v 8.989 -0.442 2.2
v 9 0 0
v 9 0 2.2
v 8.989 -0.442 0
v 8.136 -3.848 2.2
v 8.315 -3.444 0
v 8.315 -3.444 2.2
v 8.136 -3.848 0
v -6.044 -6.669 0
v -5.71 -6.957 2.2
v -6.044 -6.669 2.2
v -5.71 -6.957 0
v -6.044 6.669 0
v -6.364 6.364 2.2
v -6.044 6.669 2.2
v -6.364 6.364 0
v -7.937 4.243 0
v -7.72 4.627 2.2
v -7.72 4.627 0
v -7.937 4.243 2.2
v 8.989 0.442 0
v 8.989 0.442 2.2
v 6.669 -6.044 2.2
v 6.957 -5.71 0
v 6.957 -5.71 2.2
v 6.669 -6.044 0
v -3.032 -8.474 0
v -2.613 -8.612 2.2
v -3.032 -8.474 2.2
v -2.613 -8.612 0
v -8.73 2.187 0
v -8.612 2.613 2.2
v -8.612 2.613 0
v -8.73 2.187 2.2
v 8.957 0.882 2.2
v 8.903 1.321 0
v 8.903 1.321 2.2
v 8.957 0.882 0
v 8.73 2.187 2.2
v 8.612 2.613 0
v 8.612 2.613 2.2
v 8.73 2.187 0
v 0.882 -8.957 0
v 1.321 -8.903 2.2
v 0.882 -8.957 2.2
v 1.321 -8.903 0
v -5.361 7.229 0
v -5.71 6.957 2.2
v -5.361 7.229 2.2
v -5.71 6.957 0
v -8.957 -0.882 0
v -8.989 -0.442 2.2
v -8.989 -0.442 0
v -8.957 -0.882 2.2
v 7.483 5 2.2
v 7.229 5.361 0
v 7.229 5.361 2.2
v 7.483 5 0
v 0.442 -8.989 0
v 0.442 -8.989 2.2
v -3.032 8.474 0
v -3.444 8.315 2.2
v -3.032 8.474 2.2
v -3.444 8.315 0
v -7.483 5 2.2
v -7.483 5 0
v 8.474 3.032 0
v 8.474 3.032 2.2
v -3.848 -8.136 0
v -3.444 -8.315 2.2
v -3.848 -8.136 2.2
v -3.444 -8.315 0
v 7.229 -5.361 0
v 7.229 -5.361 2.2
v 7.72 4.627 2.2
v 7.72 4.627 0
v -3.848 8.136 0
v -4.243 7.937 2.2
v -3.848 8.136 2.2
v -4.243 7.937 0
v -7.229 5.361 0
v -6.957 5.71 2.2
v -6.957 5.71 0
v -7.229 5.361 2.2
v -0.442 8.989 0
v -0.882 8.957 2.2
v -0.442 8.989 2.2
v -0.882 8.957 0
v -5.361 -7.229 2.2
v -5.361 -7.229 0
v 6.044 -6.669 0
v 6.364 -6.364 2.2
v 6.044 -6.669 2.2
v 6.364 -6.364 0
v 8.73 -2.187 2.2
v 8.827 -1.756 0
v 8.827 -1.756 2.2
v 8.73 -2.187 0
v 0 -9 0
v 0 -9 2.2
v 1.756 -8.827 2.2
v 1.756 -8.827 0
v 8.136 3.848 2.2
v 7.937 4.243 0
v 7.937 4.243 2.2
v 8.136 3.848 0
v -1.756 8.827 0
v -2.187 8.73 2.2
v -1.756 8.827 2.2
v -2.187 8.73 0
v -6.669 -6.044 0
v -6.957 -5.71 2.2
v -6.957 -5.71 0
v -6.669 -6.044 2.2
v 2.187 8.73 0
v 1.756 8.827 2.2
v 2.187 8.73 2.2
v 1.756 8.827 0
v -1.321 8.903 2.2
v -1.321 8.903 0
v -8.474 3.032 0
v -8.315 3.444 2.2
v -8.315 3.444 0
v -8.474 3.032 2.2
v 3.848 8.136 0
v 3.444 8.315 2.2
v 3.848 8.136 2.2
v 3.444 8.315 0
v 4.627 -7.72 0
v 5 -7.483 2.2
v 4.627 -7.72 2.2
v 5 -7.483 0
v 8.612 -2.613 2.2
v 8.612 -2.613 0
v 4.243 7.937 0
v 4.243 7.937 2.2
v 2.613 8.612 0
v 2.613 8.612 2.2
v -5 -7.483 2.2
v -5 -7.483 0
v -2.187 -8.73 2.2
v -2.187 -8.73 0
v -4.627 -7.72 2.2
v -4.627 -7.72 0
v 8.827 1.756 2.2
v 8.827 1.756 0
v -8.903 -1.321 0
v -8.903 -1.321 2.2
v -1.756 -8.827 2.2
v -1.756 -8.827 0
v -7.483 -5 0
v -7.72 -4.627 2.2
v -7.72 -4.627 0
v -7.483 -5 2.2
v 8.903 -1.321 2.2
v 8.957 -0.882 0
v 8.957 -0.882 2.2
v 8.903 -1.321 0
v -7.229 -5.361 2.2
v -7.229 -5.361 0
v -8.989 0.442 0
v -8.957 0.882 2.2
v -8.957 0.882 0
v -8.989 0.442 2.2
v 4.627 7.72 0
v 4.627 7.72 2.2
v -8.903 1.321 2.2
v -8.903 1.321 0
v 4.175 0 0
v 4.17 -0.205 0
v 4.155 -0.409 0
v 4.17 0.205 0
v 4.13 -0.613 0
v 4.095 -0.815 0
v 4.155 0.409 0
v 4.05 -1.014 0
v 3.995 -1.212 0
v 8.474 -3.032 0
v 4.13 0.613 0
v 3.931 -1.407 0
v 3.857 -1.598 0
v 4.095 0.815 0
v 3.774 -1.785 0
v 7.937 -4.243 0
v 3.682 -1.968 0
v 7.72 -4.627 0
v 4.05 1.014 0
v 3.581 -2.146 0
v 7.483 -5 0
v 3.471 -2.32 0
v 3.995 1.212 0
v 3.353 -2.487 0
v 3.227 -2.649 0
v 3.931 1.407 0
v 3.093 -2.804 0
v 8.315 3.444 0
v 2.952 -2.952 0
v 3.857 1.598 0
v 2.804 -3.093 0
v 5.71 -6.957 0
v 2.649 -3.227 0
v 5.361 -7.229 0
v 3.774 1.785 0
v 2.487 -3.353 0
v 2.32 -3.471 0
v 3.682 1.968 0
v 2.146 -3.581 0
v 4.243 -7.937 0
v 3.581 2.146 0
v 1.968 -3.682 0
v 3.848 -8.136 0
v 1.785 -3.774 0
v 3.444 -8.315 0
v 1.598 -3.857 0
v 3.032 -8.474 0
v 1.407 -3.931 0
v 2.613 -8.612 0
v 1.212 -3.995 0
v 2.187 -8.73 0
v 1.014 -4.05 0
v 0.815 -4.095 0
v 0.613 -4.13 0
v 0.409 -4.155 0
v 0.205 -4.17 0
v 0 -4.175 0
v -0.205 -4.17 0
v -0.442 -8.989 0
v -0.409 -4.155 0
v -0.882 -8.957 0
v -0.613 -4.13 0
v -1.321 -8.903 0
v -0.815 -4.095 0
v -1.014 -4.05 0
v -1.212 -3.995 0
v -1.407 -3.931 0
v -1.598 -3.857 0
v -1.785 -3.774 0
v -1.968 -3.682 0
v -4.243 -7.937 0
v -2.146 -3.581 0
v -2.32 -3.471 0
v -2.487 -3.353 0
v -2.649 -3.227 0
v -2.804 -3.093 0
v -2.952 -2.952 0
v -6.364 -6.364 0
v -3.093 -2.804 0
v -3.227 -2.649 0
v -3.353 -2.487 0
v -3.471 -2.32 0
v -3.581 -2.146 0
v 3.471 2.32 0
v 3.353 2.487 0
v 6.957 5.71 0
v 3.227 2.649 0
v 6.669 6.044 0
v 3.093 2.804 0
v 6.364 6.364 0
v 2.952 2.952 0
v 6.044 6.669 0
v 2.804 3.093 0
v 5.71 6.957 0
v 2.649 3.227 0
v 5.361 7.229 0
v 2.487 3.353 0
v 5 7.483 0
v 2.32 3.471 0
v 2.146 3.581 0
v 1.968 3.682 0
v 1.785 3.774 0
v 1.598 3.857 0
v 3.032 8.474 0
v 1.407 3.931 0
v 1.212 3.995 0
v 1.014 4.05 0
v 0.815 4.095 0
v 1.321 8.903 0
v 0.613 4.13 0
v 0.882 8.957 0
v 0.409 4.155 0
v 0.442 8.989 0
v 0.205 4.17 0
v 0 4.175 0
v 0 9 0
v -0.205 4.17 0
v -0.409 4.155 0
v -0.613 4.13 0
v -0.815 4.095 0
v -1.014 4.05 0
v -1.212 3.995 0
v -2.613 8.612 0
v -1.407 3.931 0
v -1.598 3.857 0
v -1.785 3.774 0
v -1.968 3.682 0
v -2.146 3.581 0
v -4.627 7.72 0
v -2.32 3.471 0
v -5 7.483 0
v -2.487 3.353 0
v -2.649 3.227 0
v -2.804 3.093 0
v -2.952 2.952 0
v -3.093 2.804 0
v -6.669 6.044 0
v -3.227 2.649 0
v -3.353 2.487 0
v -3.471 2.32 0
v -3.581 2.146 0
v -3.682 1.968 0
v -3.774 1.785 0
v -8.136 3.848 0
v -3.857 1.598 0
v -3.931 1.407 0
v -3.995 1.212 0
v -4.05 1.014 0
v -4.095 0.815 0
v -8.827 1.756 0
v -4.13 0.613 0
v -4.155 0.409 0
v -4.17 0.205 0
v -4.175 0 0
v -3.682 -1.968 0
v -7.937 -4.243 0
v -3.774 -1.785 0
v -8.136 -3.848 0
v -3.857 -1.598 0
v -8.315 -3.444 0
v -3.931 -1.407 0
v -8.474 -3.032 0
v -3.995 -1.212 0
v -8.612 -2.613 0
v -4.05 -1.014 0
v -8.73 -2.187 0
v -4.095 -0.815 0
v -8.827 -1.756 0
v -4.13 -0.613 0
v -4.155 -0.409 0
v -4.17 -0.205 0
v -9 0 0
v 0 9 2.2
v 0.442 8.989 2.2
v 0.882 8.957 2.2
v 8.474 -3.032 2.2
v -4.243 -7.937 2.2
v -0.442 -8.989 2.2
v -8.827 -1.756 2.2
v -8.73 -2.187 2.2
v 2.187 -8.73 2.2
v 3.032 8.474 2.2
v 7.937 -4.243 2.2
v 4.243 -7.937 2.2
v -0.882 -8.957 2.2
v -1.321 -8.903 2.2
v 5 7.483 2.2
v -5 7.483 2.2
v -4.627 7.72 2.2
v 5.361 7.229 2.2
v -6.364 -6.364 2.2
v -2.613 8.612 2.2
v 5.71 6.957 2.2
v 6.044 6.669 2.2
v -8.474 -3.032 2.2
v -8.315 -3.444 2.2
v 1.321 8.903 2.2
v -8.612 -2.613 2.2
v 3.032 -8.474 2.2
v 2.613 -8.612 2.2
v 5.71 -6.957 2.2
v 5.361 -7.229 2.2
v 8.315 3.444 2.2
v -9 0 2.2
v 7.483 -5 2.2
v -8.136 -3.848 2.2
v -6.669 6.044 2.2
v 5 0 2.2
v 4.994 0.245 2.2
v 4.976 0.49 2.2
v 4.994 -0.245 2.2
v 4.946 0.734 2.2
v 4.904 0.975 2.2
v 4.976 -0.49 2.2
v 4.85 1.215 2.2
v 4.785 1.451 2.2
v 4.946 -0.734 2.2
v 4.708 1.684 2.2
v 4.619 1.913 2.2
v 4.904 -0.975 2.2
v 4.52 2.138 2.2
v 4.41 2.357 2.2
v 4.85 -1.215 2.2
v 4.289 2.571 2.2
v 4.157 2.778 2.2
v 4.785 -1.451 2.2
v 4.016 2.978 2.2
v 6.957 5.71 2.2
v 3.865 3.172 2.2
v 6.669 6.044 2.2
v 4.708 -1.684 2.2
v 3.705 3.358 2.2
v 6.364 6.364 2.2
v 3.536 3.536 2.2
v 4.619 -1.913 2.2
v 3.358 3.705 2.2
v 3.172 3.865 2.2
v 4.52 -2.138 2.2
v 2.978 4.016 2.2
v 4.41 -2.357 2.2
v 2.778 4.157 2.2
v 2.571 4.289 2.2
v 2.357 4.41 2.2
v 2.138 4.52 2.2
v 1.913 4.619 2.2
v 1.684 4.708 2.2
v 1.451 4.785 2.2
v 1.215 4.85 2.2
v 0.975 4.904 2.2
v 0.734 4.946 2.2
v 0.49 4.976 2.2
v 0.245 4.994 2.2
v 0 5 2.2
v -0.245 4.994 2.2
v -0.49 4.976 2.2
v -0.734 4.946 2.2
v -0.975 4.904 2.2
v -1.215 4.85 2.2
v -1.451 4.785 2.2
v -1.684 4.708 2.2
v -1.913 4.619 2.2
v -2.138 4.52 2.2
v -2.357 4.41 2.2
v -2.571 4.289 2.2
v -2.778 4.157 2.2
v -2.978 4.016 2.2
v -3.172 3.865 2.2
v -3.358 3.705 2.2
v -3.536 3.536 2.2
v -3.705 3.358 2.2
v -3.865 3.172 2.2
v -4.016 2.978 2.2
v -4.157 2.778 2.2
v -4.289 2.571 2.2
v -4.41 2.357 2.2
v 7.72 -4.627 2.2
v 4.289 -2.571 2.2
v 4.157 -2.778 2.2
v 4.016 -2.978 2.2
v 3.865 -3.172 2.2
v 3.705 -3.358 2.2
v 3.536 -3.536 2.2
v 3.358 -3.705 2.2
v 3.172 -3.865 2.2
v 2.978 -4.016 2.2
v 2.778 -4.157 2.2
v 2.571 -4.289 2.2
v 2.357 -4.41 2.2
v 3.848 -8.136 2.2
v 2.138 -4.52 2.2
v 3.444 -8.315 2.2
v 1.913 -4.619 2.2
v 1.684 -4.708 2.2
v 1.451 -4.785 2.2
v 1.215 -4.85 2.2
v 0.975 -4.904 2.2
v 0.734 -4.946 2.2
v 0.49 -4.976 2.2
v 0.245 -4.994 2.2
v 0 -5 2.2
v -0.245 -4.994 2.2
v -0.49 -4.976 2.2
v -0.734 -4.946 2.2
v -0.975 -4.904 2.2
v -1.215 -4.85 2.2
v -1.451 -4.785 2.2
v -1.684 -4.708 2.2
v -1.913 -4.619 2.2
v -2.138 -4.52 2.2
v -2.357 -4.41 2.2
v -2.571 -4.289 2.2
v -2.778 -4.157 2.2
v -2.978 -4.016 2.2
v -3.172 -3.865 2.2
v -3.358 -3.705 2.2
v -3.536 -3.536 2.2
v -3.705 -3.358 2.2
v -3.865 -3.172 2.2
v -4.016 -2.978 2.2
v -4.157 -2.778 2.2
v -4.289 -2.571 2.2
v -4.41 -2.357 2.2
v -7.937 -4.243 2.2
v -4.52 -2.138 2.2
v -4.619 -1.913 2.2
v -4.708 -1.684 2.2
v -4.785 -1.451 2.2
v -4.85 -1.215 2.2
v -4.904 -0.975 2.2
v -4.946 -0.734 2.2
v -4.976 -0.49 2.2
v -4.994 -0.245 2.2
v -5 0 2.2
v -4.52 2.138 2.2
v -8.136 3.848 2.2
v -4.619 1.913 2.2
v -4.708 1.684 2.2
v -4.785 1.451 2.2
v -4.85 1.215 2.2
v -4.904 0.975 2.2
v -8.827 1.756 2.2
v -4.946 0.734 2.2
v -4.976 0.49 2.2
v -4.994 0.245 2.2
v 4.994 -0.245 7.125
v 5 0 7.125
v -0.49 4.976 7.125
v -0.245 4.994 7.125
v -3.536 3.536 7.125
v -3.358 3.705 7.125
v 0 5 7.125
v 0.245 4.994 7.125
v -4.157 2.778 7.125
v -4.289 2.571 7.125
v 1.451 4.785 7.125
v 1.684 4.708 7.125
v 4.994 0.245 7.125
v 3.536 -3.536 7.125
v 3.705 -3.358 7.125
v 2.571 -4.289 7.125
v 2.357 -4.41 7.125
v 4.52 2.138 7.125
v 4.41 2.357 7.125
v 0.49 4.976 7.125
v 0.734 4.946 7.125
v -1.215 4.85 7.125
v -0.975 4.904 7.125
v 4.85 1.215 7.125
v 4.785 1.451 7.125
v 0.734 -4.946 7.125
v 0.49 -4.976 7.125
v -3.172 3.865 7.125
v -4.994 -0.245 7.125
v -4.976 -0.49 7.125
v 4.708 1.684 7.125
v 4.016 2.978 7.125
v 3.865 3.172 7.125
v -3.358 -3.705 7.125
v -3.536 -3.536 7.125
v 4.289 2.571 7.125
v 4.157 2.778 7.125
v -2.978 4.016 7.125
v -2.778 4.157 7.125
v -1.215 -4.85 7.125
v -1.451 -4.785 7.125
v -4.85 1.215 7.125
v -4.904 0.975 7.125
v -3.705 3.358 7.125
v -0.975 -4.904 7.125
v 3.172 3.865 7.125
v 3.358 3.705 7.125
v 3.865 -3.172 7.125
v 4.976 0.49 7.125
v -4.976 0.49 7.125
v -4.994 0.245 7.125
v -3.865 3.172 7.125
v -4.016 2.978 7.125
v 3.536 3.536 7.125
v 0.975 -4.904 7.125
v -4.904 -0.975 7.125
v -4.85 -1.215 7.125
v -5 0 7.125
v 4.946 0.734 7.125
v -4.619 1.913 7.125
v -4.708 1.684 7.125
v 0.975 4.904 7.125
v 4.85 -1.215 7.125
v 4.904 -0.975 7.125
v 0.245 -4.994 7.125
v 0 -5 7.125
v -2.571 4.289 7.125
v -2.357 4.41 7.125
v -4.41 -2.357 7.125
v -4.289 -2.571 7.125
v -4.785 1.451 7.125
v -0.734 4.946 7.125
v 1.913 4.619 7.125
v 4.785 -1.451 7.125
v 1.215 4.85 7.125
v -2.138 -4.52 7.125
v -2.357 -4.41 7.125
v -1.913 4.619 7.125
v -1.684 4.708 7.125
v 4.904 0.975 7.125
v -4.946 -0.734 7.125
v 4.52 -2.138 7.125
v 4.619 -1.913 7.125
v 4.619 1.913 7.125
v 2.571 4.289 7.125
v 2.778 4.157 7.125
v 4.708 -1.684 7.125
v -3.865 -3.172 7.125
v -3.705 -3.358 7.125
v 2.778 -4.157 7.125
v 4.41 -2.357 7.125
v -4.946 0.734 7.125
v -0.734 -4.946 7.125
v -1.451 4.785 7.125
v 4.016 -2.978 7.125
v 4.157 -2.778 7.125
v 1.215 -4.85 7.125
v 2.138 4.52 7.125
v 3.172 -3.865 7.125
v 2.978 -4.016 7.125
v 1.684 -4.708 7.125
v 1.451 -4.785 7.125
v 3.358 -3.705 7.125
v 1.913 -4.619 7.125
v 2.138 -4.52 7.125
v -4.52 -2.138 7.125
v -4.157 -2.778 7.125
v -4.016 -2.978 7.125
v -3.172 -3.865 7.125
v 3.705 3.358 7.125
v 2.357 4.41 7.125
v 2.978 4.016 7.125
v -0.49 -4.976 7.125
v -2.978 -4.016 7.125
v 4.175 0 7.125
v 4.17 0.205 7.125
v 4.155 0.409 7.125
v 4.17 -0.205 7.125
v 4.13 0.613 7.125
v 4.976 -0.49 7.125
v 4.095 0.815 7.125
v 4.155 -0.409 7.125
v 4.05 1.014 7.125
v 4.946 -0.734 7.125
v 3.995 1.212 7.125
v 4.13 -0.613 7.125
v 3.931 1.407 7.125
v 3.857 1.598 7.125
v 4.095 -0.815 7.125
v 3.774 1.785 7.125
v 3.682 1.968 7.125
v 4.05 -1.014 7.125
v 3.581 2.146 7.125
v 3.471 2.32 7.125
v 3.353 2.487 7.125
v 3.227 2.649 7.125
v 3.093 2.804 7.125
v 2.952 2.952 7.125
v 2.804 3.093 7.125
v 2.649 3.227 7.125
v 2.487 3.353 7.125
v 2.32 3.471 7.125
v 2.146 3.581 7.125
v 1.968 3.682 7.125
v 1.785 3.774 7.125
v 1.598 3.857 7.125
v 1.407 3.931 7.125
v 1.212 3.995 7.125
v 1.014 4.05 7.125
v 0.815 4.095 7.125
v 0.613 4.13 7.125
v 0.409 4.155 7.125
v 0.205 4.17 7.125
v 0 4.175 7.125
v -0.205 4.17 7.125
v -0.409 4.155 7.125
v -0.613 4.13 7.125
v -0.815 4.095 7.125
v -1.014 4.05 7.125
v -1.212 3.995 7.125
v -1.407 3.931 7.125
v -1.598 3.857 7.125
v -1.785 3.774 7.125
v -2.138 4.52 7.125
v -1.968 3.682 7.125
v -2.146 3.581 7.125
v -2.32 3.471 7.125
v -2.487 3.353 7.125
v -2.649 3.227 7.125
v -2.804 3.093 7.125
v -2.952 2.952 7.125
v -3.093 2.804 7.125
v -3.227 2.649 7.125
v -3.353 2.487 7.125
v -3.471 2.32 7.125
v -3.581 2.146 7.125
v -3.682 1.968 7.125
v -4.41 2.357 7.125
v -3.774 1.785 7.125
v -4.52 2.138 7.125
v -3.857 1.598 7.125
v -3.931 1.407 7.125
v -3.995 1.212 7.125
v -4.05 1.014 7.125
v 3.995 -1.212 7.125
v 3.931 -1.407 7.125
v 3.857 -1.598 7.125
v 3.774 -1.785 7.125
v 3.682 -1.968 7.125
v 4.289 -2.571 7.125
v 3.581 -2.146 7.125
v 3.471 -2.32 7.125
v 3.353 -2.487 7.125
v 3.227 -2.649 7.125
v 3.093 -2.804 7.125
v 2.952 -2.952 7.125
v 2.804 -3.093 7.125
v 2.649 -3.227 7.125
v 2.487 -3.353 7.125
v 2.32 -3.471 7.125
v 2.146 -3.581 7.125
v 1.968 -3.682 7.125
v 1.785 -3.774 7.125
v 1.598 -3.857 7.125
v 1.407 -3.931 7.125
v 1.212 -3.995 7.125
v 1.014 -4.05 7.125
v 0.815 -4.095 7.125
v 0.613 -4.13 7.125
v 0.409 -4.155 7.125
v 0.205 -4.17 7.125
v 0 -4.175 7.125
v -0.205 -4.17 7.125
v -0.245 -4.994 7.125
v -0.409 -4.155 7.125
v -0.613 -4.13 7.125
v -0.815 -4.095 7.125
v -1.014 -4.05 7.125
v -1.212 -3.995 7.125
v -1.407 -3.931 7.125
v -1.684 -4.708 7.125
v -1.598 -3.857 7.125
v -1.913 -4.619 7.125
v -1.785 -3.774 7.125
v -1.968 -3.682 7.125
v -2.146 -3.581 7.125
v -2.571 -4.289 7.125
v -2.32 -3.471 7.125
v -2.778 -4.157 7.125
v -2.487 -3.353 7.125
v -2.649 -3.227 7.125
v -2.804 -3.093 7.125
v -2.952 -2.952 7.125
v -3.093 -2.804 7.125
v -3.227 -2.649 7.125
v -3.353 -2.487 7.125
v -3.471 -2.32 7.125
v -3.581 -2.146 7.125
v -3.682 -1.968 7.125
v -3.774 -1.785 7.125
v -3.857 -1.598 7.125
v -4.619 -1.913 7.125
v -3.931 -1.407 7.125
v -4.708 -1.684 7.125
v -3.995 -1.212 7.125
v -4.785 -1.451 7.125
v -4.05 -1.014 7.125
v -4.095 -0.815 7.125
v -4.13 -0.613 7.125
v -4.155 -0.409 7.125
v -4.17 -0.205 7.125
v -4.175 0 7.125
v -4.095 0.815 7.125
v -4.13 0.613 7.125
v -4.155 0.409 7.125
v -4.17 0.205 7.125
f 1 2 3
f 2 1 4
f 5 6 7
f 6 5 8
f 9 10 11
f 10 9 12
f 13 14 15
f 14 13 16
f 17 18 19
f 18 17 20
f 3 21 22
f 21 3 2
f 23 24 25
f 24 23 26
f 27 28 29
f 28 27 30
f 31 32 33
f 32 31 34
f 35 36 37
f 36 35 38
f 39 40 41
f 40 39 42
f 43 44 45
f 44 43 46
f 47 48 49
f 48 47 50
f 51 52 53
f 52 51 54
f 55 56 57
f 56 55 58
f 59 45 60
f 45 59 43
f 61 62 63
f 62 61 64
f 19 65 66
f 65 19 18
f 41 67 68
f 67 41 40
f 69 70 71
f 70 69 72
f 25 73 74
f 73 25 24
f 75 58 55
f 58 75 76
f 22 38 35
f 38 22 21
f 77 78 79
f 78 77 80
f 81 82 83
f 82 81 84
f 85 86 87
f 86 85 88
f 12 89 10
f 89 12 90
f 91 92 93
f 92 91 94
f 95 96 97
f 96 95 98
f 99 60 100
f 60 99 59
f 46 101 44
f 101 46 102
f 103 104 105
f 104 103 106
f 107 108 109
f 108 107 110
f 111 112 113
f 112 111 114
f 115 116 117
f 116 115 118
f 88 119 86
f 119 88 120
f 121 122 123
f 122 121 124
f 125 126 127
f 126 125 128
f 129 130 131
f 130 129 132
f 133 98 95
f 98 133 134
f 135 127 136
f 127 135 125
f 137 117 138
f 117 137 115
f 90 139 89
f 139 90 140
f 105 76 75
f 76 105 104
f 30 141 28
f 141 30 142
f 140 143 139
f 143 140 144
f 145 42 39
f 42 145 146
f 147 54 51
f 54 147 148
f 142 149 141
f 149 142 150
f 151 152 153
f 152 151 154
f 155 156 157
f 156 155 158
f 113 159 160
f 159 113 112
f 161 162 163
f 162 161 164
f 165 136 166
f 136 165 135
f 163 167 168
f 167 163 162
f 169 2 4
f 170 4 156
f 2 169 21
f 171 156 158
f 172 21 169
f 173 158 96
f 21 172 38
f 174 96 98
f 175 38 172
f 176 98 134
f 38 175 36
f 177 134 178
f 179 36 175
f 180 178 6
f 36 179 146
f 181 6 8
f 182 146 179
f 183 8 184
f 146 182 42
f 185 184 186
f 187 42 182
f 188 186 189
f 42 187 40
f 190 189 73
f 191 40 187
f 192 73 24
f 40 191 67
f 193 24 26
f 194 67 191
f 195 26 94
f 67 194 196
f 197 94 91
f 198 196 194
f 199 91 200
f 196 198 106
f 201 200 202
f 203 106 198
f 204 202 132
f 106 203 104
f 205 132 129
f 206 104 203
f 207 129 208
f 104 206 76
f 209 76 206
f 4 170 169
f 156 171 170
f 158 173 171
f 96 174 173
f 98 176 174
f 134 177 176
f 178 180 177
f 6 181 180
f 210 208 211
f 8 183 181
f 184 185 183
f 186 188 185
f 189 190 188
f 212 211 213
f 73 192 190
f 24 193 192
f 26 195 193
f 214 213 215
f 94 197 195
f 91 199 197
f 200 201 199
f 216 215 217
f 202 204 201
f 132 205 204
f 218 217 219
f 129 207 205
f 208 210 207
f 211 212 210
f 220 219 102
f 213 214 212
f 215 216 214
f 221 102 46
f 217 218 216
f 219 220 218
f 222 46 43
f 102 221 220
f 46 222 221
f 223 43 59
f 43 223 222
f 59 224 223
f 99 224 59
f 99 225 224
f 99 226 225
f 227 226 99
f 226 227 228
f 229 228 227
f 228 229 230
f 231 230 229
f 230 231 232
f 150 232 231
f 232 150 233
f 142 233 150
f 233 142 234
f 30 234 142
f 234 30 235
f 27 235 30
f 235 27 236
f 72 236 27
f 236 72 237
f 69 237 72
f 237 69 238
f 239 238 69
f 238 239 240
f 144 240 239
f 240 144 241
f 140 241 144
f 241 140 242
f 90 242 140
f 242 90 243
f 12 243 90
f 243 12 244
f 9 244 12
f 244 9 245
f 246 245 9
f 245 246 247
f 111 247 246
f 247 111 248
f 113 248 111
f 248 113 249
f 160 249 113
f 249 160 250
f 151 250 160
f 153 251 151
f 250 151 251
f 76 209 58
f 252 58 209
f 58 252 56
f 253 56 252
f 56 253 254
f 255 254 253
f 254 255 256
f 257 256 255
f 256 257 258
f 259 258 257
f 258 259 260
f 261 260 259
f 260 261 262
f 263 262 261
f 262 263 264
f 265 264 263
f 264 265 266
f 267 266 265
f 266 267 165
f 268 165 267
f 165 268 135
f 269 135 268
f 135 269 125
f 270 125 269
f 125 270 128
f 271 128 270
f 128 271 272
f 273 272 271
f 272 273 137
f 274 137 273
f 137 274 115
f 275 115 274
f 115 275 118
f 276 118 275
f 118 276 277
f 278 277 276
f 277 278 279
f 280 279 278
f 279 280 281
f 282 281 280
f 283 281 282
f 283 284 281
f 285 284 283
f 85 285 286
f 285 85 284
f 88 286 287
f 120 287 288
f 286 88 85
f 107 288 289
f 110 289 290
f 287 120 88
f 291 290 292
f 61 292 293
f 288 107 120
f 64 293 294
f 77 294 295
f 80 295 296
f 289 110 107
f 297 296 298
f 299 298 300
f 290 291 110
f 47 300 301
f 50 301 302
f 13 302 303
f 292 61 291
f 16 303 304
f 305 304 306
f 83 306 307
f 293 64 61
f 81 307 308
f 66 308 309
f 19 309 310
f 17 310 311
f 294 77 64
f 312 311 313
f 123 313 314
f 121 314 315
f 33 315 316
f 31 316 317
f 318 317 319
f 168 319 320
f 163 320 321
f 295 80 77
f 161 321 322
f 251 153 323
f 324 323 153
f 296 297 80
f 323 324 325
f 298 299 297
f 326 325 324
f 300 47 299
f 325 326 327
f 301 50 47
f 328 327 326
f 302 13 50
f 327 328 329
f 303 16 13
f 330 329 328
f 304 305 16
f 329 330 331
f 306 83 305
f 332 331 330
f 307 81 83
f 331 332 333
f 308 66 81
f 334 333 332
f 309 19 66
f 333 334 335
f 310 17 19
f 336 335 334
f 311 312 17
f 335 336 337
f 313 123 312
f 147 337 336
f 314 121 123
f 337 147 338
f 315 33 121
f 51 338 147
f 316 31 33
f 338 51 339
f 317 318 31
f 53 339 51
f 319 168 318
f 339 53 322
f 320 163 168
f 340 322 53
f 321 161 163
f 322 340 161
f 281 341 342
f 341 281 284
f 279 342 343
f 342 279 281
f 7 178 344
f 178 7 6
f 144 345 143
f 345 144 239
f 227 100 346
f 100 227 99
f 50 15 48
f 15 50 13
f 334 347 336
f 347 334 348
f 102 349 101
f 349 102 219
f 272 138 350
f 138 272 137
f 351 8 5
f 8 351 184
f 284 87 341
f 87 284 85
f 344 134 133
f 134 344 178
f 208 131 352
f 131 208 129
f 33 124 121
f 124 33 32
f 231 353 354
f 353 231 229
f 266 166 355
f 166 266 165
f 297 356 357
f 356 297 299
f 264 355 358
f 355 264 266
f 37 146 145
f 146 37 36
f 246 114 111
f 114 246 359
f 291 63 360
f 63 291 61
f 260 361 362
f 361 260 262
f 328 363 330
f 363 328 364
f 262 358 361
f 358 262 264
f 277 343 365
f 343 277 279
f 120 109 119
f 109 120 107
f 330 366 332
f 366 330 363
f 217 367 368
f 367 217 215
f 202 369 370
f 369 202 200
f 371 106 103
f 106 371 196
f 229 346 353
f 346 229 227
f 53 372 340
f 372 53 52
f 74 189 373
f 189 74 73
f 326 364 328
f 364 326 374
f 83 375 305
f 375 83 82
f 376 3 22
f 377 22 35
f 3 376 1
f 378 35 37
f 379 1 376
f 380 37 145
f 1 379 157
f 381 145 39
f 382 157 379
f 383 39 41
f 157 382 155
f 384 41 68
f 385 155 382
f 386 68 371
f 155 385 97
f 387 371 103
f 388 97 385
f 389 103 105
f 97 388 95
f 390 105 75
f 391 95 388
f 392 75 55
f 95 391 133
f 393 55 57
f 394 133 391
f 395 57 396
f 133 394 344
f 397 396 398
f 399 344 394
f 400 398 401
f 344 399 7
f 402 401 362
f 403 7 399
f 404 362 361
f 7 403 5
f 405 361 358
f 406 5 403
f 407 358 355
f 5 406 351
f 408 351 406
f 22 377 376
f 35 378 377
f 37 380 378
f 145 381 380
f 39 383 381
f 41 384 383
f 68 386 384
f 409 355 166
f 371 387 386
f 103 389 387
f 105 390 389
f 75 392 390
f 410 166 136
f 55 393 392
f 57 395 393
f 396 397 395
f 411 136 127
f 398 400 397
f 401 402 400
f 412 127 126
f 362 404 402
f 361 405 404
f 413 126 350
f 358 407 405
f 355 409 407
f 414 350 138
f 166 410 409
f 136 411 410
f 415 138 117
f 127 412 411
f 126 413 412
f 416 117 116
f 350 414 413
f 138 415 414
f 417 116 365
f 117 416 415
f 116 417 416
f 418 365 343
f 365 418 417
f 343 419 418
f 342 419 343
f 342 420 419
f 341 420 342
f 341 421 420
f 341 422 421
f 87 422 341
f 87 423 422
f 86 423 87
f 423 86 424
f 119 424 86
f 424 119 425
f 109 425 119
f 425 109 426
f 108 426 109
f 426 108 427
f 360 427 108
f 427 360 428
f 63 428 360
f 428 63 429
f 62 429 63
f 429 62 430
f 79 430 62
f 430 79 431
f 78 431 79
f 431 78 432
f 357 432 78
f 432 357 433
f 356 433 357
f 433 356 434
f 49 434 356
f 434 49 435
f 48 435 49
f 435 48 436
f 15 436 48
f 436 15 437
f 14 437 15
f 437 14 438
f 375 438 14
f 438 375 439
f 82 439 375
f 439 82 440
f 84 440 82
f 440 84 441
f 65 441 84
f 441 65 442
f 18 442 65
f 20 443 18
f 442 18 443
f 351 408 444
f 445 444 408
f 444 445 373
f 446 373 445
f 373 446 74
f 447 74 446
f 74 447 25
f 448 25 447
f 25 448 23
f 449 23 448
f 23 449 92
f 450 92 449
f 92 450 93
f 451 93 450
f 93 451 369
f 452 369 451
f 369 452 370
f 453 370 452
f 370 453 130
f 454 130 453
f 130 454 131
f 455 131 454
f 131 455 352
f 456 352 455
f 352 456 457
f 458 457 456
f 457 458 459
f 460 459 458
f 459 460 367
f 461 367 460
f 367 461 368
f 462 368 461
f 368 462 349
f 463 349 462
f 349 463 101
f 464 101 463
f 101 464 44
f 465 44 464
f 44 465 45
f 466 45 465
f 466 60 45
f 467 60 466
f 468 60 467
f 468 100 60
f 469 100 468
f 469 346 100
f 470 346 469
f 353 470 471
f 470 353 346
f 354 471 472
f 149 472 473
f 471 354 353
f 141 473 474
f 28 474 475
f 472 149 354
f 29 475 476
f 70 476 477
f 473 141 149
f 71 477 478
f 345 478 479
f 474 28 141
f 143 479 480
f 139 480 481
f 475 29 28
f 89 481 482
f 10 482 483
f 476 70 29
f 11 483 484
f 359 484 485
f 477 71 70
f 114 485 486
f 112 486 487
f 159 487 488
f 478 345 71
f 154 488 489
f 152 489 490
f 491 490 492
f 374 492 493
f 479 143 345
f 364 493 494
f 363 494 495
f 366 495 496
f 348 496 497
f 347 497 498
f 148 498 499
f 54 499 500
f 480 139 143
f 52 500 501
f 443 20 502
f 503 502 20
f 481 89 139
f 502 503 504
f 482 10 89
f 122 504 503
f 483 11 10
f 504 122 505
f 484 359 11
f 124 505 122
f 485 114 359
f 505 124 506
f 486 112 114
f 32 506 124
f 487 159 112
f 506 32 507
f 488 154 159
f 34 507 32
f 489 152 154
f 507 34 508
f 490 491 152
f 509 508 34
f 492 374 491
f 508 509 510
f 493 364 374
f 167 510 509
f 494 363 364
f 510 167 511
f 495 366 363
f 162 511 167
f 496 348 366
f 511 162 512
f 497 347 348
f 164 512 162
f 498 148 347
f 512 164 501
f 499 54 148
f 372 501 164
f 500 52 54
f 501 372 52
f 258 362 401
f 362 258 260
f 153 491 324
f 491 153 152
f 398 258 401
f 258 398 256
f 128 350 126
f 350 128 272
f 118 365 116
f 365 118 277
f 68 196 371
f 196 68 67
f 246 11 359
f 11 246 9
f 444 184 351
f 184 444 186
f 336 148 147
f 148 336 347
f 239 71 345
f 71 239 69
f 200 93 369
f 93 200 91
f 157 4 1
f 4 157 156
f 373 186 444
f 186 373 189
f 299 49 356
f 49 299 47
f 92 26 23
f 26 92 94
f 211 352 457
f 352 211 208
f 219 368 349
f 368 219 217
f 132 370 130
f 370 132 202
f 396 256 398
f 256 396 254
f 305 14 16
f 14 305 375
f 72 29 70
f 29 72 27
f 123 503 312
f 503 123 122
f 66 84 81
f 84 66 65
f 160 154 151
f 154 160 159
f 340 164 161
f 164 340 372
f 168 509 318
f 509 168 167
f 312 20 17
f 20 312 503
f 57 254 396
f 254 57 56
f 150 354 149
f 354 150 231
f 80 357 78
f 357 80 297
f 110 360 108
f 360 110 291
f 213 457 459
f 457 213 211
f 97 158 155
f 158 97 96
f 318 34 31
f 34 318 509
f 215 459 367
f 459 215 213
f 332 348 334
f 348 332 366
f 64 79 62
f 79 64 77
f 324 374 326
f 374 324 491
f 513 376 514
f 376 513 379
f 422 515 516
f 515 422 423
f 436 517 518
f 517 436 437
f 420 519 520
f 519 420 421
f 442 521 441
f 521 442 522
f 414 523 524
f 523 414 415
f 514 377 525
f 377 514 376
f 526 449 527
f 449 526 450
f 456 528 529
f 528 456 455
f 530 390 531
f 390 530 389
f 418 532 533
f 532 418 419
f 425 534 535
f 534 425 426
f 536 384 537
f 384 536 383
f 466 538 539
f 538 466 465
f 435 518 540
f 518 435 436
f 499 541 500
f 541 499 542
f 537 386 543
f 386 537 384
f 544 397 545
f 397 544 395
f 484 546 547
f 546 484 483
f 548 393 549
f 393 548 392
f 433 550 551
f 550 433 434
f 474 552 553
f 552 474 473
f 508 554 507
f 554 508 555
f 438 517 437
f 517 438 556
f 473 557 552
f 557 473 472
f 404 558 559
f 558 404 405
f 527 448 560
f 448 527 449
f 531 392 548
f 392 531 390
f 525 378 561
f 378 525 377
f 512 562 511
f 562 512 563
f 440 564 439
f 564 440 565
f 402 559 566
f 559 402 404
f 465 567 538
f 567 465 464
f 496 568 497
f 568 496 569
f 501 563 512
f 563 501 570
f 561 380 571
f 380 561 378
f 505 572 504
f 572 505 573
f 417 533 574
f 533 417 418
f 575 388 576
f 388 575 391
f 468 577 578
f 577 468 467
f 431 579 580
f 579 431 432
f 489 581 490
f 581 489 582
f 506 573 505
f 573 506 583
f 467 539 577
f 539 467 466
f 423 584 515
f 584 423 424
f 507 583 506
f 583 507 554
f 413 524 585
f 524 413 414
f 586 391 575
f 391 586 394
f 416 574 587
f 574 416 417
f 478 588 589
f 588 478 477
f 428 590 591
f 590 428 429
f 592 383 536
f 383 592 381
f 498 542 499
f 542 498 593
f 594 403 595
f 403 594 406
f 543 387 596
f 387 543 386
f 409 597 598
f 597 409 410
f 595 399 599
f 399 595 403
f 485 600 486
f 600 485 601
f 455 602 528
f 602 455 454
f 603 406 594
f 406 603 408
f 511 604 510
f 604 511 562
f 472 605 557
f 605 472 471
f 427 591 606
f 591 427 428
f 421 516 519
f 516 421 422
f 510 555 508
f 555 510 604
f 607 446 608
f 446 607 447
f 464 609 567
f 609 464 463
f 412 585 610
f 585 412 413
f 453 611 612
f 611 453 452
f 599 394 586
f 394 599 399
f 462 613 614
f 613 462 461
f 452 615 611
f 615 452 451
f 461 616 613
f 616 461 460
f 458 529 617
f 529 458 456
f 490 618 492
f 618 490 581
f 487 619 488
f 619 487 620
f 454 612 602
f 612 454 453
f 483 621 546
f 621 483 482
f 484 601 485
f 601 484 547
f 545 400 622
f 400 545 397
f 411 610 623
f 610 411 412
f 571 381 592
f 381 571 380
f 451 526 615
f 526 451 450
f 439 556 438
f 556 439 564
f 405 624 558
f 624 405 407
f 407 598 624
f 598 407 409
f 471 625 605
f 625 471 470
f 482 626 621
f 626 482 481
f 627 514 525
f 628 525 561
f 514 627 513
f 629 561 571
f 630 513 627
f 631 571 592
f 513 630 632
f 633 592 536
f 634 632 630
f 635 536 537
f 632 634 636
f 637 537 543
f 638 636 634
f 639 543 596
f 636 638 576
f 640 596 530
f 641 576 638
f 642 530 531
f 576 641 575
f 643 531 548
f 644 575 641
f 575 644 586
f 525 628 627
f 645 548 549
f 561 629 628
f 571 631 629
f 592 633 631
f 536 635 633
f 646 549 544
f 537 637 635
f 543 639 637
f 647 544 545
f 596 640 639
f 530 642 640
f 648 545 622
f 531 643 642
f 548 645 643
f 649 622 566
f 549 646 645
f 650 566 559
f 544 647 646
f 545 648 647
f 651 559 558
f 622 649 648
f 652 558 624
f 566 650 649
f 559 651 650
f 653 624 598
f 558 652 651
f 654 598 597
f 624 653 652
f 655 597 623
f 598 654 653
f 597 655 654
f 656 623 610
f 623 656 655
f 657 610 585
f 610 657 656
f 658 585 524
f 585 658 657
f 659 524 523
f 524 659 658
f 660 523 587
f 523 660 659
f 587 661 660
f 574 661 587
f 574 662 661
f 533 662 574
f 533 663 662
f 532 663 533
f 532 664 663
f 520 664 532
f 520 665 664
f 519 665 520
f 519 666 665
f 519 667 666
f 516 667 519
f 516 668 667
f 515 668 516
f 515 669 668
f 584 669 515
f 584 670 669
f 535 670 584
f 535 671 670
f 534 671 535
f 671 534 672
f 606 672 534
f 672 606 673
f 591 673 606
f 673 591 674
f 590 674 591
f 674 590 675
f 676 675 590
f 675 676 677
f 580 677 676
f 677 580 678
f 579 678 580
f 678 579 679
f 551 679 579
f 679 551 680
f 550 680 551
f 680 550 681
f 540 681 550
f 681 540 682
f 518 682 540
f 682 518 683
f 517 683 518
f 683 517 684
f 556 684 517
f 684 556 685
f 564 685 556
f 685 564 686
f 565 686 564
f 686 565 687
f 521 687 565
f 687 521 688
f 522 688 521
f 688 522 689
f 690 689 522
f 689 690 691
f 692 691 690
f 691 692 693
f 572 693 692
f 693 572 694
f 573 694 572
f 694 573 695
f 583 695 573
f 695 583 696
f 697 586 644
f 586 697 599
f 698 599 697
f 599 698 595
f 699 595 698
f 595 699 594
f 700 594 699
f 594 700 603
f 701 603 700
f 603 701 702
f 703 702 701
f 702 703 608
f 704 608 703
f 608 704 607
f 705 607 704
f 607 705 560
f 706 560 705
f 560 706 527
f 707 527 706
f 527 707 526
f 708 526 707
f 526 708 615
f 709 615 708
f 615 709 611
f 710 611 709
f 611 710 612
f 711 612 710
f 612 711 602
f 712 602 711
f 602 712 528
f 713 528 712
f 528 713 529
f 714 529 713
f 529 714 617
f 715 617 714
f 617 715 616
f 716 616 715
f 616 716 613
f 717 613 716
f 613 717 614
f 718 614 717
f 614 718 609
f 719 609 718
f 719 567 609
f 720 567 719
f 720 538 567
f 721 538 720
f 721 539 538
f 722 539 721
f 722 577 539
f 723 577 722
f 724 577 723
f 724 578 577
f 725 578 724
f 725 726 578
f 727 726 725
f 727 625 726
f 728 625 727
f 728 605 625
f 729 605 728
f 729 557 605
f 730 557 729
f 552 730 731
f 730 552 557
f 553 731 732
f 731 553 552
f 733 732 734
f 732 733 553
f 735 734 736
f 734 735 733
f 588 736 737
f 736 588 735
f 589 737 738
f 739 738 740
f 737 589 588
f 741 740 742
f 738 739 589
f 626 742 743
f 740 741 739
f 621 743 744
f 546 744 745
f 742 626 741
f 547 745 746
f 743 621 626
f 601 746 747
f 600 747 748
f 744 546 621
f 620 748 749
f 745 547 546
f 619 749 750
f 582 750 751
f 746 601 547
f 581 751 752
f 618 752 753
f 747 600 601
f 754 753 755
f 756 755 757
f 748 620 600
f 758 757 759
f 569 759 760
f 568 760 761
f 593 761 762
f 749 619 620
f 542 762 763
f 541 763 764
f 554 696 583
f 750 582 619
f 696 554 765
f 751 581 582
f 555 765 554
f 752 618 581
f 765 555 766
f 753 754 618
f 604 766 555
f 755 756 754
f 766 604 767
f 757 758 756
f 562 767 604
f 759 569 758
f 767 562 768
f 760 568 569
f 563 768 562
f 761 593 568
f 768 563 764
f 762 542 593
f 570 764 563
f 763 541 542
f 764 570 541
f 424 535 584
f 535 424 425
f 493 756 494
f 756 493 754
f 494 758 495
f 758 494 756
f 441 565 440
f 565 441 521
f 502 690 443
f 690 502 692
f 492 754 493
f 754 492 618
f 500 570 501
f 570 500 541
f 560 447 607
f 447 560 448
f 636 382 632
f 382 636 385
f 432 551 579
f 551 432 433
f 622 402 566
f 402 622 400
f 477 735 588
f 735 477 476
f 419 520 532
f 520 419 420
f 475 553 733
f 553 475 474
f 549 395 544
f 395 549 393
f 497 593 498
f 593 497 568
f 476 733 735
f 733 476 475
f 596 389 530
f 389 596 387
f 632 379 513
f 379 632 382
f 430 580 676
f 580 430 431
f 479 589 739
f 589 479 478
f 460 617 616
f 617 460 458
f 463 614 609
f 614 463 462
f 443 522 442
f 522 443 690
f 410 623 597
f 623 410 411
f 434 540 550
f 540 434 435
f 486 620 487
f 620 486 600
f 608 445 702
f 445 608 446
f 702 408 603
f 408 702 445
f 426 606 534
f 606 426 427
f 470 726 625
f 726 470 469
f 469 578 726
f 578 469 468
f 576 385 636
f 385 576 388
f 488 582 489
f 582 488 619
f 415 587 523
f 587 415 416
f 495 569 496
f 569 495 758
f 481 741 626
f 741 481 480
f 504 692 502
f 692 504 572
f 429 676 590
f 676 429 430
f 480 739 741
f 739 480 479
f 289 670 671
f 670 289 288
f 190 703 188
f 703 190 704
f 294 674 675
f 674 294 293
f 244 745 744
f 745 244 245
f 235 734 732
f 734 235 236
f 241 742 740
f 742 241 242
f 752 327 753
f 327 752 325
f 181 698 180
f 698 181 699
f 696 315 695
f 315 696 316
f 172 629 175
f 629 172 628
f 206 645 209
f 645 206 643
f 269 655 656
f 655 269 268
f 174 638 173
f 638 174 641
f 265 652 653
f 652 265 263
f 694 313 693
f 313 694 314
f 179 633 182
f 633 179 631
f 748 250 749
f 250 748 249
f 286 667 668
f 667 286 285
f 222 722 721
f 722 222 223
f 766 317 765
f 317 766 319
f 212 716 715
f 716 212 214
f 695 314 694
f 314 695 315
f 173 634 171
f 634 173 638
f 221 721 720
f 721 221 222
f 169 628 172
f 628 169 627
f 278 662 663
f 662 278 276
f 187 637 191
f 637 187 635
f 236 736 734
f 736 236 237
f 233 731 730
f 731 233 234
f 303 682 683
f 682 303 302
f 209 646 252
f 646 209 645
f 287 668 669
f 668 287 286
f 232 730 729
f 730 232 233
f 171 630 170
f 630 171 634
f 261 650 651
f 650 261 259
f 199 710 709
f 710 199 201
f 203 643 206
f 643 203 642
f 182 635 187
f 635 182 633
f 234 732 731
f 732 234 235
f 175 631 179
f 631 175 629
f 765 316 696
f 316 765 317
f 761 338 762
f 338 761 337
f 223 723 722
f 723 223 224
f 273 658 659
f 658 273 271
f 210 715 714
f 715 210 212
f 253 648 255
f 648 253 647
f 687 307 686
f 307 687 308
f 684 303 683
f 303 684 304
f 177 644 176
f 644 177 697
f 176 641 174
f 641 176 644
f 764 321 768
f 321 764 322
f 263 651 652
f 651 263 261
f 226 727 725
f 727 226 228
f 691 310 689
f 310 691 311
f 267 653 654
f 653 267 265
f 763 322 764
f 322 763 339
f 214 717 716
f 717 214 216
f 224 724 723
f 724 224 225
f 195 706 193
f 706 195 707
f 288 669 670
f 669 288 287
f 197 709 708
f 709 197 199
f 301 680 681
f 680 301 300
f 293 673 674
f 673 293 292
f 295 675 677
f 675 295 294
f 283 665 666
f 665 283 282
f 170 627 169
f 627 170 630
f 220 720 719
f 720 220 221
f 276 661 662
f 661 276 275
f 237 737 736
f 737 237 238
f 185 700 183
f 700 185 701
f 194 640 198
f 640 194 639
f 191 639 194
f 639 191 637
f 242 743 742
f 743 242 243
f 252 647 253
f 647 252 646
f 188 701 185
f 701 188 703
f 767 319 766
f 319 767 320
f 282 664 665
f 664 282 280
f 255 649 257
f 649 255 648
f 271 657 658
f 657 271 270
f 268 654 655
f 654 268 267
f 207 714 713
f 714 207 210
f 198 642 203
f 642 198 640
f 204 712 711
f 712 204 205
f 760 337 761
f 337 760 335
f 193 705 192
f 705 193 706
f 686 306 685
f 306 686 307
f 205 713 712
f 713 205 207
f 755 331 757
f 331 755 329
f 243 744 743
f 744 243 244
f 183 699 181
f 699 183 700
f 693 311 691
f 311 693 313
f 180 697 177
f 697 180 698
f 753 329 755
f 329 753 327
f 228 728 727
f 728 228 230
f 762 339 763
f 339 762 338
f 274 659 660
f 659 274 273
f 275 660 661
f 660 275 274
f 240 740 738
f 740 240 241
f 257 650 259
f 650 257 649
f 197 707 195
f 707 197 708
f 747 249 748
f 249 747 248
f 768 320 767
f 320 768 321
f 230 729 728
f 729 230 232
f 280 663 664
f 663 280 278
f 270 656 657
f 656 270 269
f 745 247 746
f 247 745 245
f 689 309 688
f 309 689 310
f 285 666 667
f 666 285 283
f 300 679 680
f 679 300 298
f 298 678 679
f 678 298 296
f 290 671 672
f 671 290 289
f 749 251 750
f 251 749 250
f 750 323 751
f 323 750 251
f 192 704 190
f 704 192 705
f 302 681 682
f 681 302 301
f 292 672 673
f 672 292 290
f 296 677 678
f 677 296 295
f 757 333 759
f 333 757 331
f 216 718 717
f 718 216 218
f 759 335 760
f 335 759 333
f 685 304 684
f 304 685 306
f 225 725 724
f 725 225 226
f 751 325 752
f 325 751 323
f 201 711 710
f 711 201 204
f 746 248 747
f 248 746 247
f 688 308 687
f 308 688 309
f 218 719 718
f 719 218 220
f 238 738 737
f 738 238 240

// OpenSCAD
$fn=128;

// Print FOUR identical halves per clamp (two per spindle).

body_od = 10.00;
body_id = 8.35;
body_len = 4.925;

flange_od = 18.00;
flange_h = 2.20;

difference() {
    union() {
        cylinder(d=flange_od,h=flange_h);
        translate([0,0,flange_h])
            cylinder(d=body_od,h=body_len);
    }

    translate([0,0,-0.5])
        cylinder(d=body_id,h=flange_h+body_len+1.0);
}
